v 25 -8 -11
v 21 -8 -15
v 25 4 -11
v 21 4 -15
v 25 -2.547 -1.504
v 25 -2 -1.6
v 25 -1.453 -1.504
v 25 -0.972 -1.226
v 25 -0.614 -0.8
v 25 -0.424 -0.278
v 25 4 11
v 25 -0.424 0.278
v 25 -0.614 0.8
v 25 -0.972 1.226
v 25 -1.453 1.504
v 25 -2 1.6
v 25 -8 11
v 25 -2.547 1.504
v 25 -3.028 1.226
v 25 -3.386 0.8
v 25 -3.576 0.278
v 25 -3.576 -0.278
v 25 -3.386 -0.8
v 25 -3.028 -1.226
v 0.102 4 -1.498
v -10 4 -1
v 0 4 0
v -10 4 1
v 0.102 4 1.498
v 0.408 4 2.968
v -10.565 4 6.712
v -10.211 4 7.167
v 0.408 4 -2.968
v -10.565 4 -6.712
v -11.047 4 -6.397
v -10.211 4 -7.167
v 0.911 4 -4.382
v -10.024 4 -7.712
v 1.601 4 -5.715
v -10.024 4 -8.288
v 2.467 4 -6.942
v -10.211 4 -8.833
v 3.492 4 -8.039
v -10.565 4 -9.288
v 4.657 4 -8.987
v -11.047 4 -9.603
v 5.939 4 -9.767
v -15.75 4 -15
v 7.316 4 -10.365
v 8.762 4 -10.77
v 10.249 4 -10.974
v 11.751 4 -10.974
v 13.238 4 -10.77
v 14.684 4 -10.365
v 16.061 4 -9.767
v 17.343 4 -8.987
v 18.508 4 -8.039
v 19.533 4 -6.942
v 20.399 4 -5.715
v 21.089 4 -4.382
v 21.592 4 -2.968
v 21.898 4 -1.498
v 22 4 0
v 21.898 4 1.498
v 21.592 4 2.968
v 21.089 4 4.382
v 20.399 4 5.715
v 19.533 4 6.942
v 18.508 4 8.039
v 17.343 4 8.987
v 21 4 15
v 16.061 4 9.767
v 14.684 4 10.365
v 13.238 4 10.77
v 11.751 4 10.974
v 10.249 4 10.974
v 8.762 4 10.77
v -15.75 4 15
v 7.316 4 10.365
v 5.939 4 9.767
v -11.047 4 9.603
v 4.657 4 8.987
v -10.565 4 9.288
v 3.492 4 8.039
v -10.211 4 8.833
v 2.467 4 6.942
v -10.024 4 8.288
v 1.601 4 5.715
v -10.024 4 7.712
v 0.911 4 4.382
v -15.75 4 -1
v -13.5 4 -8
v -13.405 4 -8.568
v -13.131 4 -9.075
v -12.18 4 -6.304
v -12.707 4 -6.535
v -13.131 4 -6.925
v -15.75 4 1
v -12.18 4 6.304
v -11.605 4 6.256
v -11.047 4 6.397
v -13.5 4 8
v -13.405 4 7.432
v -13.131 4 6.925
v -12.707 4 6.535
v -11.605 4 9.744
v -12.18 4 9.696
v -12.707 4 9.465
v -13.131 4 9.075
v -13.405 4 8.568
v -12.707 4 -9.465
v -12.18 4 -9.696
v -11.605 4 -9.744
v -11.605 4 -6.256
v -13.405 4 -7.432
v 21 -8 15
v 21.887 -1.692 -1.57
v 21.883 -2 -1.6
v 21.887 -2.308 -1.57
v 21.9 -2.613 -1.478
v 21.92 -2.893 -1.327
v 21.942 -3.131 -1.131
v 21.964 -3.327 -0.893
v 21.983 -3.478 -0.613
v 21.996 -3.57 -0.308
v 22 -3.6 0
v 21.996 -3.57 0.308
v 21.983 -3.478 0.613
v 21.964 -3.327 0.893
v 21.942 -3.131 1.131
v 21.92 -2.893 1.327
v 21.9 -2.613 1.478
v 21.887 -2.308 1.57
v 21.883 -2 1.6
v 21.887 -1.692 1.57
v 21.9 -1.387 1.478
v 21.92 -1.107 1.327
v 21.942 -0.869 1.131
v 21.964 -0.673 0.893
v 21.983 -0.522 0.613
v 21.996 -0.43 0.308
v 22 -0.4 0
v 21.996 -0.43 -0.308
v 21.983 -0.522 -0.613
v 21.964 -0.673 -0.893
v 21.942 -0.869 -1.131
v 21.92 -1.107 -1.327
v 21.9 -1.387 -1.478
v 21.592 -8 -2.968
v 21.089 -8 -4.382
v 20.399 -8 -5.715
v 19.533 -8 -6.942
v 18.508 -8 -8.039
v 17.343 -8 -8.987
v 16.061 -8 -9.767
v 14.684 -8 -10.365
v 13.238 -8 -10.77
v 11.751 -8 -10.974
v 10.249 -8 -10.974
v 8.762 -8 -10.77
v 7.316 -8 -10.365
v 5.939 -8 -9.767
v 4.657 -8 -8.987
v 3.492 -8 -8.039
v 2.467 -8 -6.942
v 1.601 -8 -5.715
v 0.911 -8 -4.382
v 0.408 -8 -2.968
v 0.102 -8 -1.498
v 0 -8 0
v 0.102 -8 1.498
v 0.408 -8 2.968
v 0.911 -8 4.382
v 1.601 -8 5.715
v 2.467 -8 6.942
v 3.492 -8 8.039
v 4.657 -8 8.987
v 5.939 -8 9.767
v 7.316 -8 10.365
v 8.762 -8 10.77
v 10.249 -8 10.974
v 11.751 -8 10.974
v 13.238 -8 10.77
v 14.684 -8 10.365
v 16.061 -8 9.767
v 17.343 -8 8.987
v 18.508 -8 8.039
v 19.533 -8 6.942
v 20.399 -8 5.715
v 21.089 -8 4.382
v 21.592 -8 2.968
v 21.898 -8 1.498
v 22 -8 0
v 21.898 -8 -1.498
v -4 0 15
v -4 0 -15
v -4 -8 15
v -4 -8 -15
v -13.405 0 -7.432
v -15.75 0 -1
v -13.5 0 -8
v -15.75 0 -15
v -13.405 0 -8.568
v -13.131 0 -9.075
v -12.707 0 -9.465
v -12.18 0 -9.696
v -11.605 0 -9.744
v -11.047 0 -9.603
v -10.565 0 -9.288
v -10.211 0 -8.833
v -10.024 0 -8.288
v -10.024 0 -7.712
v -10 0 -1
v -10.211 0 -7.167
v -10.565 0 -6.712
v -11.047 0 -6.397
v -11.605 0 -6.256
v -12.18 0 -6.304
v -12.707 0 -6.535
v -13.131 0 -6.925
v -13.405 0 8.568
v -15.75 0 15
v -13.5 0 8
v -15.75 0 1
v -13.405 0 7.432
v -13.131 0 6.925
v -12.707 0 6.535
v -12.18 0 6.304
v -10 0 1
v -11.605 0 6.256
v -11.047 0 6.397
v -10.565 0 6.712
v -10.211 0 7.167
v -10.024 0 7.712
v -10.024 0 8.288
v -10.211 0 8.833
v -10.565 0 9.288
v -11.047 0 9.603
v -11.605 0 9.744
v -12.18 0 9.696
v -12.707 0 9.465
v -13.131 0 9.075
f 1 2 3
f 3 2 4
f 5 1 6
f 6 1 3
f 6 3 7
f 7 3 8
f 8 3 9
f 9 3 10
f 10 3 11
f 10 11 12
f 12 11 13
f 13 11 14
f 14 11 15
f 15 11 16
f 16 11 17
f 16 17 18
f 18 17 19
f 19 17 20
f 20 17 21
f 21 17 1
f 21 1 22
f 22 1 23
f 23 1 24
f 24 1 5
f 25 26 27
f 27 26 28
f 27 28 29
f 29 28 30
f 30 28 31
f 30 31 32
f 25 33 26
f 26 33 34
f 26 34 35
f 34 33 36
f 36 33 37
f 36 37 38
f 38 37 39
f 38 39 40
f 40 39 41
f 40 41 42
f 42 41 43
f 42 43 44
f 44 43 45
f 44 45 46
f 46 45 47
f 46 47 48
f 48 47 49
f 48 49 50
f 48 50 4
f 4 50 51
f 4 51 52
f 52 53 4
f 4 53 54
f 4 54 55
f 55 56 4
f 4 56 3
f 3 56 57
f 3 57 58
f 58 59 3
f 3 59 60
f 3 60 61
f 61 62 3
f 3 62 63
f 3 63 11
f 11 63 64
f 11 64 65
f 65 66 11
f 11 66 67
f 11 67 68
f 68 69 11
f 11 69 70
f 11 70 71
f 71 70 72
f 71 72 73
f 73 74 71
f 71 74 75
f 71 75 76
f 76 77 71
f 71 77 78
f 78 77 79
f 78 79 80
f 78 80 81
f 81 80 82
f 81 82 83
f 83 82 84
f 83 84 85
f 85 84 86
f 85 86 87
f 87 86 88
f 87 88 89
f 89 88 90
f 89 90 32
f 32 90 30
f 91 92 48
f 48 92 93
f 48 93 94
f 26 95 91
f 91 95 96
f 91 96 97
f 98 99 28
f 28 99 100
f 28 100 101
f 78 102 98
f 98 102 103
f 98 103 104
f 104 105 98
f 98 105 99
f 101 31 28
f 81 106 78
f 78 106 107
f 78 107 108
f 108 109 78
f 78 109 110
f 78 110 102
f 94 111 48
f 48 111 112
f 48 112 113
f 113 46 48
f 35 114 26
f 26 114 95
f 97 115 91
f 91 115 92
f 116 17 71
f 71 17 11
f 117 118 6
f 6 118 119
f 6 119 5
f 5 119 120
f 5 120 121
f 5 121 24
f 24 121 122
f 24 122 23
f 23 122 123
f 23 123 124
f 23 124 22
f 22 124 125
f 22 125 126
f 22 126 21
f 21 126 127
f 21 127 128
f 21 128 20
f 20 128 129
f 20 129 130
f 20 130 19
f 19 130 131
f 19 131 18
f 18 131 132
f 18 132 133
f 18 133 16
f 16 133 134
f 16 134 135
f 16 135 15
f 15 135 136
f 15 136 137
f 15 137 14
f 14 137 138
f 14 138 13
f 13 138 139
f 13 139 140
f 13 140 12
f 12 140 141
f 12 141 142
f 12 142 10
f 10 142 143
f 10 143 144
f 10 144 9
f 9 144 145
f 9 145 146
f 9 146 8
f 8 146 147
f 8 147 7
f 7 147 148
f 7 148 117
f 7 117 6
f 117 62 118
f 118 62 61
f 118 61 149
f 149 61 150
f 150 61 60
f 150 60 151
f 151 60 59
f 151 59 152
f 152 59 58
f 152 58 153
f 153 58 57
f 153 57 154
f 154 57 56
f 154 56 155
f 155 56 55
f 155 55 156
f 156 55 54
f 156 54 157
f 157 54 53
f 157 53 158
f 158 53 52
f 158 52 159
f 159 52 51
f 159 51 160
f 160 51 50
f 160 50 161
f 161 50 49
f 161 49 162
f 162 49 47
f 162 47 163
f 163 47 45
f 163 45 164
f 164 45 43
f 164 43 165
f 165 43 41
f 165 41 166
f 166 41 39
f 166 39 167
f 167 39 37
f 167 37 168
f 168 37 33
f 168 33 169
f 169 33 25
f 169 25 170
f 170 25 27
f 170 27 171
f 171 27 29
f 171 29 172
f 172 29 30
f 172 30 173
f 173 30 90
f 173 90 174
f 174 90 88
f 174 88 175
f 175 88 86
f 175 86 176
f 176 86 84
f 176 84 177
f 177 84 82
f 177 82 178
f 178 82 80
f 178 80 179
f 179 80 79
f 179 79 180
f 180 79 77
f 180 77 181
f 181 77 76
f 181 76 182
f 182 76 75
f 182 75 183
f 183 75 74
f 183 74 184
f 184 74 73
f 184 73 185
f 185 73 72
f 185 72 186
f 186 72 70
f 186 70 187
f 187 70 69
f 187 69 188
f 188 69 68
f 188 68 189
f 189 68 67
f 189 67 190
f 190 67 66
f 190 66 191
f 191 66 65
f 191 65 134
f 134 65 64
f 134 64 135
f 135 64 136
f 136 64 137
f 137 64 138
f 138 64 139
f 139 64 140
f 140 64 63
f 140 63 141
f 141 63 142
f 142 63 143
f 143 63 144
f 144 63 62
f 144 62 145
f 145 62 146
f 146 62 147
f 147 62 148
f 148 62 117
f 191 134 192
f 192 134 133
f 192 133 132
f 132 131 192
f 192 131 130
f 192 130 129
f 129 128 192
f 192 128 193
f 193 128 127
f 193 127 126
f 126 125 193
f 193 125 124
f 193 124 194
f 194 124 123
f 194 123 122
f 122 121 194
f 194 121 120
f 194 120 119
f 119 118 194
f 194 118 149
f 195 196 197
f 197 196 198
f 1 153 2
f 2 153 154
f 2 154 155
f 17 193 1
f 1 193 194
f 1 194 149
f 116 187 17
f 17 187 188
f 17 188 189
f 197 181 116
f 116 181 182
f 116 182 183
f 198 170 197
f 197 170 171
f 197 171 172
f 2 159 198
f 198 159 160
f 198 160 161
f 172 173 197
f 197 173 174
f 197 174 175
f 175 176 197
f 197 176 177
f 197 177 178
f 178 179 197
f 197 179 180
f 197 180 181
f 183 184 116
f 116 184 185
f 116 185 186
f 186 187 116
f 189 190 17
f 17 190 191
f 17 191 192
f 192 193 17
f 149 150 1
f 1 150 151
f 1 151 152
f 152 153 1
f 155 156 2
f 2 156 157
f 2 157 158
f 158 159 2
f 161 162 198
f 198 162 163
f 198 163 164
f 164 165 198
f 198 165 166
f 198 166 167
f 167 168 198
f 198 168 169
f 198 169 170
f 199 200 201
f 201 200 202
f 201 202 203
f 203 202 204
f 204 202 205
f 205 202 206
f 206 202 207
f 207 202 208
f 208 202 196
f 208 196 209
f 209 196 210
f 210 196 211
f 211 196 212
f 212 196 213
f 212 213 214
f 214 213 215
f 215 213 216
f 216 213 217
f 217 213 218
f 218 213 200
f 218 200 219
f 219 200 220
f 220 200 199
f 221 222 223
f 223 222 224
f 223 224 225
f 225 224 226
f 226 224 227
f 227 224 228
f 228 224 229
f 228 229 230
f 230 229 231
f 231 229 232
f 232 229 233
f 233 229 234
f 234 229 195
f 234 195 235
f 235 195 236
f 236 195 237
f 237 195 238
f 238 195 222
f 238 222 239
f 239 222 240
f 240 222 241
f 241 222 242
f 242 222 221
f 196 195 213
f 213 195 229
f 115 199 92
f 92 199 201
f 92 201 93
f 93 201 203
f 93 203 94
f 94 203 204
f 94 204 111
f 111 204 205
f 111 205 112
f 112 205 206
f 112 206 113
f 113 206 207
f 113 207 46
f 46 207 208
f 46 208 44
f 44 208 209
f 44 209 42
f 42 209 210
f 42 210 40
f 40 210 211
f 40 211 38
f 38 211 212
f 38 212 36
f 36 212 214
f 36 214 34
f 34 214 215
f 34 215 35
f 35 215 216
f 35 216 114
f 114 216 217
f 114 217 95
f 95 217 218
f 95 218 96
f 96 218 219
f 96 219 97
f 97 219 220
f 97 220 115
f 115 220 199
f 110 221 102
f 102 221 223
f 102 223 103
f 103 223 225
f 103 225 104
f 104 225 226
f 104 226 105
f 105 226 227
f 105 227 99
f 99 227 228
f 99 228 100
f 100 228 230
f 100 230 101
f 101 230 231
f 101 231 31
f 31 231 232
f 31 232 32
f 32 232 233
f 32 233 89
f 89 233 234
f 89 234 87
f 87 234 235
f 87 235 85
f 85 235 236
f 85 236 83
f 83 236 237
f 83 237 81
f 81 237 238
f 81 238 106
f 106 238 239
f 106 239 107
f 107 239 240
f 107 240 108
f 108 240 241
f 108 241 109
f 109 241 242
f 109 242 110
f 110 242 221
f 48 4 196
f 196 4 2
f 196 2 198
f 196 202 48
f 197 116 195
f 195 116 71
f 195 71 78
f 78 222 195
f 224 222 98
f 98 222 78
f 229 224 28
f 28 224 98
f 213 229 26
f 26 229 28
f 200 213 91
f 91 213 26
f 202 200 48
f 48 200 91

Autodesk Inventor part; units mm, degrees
ref_plane "YZ Plane" through (0, 0, 0) normal (1, 0, 0) x (0, 1, 0)
ref_plane "XZ Plane" through (0, 0, 0) normal (0, 1, 0) x (-1, 0, 0)
ref_plane "XY Plane" through (0, 0, 0) normal (0, 0, 1) x (1, 0, 0)
sketch "Эскиз1" plane through (0, 0, 0) normal (0, 1, 0) x (-1, 0, 0)
  line L0 (0, 15) -> (10, 15)
  line L1 (10, 15) -> (10, -15)
  line L2 (10, -15) -> (0, -15)
  line L3 (0, -15) -> (0, 15)
  circle A0 centre (11.75, 8) radius 1.75
  circle A1 centre (11.75, -8) radius 1.75
  line L4 (15.75, 15) -> (7.75, 15)
  line L5 (7.75, 15) -> (7.75, 1)
  line L6 (7.75, 1) -> (15.75, 1)
  line L7 (15.75, 1) -> (15.75, 15)
  line L8 (15.75, 15) -> (7.75, 1) construction
  line L9 (7.75, 15) -> (15.75, 1) construction
  line L10 (15.75, -1) -> (7.75, -1)
  line L11 (7.75, -1) -> (7.75, -15)
  line L12 (7.75, -15) -> (15.75, -15)
  line L13 (15.75, -15) -> (15.75, -1)
  line L14 (15.75, -1) -> (7.75, -15) construction
  line L15 (7.75, -1) -> (15.75, -15) construction
  point P0 (0, 0)
  point P1 (10, -1)
  point P2 (10, 1)
  point P3 (10, 15)
  point P4 (0, 0)
  dimension "d0" = 10
  dimension "d1" = 30
  dimension "d2" = 3.5
  dimension "d3" = 3.5
  dimension "d4" = 7
  dimension "d5" = 7
  dimension "d6" = 4
  dimension "d7" = 4
extrude "Выдавливание1" add sketch "Эскиз1" along normal blind 4
sketch "Эскиз2" plane through (0, 0, 0) normal (0, -1, 0) x (1, 0, 0)
  line L0 (-15.75, 15) -> (0, 15) projected
  line L1 (0, -15) -> (-15.75, -15) projected
  line L2 (0, 15) -> (-4, 15)
  line L3 (-4, 15) -> (-4, -15)
  line L4 (-4, -15) -> (0, -15)
  line L5 (0, -15) -> (0, 15)
  line L6 (-10, -1) -> (-10, 1) projected
  line L7 (-10, 1) -> (-10, 15) construction
  line L8 (-15.75, 15) -> (0, 15) projected
  point P0 (0, 0)
  point P1 (-4, 15)
  point P2 (-10, 0)
  dimension "d27" = 6
extrude "Выдавливание2" add sketch "Эскиз2" along normal blind 8
sketch "Эскиз3" plane through (0, 4, 0) normal (0, 1, 0) x (1, 0, 0)
  circle A0 centre (11, 0) radius 11
  line L0 (-15.75, -15) -> (0, -15) projected
  line L1 (0, -15) -> (25, -15)
  line L2 (0, -15) -> (0, 15)
  line L3 (0, 15) -> (-15.75, 15) projected
  line L4 (0, 15) -> (25, 15)
  line L5 (25, 15) -> (25, -15)
  point P0 (0, 0)
  dimension "d13" = 22
  dimension "d14" = 11
  dimension "d15" = 14
extrude "Выдавливание3" add sketch "Эскиз3" against normal up to surface (12 mm away)
sketch "Эскиз4" plane through (25, 4, 15) normal (1, 0, 0) x (0, 0, -1)
  line L0 (0, 0) -> (0, -12) construction
  line L1 (30, 0) -> (30, -12) construction
  line L2 (30, -4) -> (30, 0) construction
  line L3 (30, 0) -> (0, -12) construction
  circle A0 centre (15, -6) radius 1.6
  dimension "d19" = 3.2
extrude "Выдавливание4" cut sketch "Эскиз4" against normal blind 10
chamfer "Фаска1" distance 4 angle 45 2 edges at (25, -2, 15) (25, -2, -15)
properties part number "креп_маркера" material "Полипропилен"
